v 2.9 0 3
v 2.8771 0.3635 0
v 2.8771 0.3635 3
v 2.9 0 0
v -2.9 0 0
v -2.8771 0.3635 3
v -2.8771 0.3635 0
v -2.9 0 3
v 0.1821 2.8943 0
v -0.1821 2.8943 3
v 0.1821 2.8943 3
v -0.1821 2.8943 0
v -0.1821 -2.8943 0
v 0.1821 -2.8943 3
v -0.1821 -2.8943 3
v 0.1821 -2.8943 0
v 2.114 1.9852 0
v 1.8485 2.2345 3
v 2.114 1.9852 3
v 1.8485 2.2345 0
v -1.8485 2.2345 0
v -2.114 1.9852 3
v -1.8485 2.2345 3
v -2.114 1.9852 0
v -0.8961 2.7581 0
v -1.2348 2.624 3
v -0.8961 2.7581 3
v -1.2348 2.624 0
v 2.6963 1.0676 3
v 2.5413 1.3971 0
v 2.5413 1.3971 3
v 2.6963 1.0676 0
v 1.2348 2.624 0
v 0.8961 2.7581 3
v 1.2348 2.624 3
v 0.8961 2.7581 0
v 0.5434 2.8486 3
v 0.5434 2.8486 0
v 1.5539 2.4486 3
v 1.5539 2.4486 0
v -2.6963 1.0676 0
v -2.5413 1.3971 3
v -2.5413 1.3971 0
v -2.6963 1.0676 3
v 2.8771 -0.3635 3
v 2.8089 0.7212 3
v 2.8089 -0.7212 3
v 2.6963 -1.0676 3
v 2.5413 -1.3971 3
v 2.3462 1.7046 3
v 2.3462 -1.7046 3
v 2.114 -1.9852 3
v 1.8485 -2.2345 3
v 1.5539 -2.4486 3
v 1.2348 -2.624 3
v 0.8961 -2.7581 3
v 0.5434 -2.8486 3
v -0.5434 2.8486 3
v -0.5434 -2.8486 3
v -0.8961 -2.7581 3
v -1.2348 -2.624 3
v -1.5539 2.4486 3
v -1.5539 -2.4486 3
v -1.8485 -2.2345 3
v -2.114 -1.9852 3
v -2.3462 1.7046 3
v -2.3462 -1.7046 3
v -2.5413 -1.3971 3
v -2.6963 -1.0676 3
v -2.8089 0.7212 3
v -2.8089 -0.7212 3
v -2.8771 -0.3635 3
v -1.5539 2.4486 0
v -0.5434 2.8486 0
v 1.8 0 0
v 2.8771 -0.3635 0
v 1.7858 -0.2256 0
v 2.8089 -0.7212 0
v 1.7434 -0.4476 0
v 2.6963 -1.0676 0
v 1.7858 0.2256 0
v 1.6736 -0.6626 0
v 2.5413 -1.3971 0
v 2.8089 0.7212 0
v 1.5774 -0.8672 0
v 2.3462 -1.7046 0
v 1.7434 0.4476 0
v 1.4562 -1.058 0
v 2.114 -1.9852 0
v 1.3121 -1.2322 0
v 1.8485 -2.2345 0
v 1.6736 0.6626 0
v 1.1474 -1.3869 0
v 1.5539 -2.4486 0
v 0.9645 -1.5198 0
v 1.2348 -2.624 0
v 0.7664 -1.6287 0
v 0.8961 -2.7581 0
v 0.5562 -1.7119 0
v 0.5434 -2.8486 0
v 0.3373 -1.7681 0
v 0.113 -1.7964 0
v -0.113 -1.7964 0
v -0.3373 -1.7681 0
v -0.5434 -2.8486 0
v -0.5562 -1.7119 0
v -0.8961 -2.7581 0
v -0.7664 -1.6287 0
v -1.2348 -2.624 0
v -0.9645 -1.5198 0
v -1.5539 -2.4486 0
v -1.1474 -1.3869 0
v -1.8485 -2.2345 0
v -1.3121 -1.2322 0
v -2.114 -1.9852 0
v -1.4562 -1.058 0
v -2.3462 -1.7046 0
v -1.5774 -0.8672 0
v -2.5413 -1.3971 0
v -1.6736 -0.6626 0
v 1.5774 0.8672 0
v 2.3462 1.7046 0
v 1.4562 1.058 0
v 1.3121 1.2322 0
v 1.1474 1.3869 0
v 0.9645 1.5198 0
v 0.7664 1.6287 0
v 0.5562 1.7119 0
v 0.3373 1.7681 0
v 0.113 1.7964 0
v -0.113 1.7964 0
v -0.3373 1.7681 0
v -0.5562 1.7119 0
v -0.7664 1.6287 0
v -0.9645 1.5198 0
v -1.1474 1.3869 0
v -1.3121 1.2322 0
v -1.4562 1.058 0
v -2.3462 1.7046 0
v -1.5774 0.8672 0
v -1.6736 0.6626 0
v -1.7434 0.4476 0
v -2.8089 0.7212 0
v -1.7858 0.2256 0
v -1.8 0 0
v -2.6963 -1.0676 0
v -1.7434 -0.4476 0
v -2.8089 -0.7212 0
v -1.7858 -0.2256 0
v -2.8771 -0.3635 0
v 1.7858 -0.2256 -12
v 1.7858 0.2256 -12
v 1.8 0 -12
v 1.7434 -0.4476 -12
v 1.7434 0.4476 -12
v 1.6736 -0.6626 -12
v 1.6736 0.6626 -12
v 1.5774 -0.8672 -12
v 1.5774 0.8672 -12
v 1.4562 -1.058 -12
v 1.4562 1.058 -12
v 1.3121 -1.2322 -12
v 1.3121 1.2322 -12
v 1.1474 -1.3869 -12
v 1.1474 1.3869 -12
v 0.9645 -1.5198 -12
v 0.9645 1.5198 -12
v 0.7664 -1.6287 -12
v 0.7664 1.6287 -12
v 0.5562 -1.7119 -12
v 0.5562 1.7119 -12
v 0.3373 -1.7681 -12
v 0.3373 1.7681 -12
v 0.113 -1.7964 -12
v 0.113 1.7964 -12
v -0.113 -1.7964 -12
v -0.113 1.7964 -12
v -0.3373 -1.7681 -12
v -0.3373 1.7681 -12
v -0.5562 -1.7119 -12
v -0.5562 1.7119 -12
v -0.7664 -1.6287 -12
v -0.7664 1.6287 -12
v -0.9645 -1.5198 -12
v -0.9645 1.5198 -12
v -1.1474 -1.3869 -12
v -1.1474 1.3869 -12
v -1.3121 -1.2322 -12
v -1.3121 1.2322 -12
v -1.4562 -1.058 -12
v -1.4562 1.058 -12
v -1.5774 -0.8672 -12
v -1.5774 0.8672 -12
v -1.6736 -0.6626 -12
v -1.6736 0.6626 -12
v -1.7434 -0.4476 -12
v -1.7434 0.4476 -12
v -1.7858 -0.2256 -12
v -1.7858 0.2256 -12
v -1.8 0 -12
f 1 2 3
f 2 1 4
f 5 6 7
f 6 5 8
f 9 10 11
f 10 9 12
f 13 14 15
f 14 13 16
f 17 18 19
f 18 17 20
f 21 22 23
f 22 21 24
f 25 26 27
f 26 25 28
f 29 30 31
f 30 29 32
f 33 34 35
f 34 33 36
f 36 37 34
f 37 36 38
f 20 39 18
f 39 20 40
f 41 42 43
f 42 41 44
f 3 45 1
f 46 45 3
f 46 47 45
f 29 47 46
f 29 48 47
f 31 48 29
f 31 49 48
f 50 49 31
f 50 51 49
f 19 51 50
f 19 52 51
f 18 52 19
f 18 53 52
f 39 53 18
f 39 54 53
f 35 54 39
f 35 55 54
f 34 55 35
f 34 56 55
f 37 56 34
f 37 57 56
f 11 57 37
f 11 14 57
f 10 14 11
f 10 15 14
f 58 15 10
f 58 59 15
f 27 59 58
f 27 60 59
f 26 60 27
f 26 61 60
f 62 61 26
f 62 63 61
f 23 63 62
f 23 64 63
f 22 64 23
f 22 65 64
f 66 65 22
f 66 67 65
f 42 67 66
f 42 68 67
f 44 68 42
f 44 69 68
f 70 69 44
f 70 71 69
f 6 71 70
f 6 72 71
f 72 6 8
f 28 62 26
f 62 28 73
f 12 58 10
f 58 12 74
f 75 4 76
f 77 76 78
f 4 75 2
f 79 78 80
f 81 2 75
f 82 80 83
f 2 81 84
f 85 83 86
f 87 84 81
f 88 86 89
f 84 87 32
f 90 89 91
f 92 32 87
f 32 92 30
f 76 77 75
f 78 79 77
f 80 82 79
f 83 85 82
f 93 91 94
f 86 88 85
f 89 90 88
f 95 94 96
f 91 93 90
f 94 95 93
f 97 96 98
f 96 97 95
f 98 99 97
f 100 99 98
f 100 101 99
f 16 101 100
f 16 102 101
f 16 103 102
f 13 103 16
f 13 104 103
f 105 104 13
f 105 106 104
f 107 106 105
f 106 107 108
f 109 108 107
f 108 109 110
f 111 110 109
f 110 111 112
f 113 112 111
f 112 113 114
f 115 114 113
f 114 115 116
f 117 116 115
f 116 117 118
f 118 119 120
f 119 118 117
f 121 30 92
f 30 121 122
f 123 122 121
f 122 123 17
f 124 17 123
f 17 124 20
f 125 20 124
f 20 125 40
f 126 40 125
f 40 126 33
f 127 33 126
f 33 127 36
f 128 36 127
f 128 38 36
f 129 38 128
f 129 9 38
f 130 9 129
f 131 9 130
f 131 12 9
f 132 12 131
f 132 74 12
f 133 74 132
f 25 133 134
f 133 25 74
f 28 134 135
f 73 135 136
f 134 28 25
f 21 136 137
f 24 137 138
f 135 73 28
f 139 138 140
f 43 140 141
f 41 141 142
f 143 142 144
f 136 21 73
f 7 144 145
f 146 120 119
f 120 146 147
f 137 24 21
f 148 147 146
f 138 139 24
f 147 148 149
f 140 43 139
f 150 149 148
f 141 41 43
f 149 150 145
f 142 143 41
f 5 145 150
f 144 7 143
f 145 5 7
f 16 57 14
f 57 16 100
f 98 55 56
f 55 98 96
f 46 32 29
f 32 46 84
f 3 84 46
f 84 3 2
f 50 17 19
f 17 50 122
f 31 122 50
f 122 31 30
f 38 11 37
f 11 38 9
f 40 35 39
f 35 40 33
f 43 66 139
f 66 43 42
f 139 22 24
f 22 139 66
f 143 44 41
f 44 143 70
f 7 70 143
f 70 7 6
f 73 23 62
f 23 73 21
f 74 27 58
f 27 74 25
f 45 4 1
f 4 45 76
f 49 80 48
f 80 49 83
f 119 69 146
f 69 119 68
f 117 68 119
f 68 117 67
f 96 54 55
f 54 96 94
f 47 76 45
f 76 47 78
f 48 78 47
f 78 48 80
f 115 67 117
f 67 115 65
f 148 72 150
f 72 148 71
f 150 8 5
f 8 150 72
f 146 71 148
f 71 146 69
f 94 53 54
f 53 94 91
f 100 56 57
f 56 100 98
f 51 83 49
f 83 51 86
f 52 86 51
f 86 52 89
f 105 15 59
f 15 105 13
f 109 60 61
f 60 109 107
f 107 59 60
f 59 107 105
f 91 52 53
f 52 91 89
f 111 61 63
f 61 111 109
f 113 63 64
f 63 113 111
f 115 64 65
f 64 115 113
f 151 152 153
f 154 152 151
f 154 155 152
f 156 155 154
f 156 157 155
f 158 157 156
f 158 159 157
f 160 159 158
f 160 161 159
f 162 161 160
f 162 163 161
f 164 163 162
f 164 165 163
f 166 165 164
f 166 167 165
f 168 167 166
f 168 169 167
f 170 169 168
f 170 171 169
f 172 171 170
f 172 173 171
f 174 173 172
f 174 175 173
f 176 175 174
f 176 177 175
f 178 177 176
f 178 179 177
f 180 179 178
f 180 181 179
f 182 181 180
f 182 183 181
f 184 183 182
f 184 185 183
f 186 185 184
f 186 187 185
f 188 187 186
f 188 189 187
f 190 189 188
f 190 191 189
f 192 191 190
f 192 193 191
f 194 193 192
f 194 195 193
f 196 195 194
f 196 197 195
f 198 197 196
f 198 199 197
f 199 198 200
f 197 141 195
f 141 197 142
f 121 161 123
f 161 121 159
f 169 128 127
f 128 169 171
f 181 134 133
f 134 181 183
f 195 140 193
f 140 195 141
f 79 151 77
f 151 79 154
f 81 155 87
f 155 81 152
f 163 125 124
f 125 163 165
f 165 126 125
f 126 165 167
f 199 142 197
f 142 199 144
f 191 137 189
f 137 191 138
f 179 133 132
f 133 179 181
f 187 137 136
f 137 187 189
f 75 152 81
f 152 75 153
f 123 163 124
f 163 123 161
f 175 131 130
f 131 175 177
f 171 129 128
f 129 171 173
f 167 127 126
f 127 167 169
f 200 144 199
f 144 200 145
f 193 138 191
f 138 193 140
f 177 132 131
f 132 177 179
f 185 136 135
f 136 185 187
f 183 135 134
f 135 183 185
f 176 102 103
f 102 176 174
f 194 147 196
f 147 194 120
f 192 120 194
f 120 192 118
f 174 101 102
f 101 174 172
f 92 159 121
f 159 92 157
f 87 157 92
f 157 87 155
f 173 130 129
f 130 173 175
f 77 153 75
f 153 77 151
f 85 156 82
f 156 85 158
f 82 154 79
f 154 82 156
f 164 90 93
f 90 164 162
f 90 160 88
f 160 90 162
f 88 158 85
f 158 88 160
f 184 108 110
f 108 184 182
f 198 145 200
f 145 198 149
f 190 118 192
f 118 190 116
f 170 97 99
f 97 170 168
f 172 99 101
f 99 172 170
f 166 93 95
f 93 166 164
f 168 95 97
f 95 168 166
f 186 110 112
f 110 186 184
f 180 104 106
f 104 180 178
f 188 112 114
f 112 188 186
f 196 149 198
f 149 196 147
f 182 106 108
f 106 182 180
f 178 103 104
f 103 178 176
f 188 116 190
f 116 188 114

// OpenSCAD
$fn = 50;


difference() {
	union() {
		translate(v = [0, 0, 0]) {
			rotate(a = [0, 0, 0]) {
				difference() {
					union() {
						cylinder(h = 3, r = 2.9000000000);
						translate(v = [0, 0, -12.0000000000]) {
							cylinder(h = 12, r = 1.5000000000);
						}
						translate(v = [0, 0, -12.0000000000]) {
							cylinder(h = 12, r = 1.8000000000);
						}
						translate(v = [0, 0, -12.0000000000]) {
							cylinder(h = 12, r = 1.5000000000);
						}
					}
					union();
				}
			}
		}
	}
	union();
}
